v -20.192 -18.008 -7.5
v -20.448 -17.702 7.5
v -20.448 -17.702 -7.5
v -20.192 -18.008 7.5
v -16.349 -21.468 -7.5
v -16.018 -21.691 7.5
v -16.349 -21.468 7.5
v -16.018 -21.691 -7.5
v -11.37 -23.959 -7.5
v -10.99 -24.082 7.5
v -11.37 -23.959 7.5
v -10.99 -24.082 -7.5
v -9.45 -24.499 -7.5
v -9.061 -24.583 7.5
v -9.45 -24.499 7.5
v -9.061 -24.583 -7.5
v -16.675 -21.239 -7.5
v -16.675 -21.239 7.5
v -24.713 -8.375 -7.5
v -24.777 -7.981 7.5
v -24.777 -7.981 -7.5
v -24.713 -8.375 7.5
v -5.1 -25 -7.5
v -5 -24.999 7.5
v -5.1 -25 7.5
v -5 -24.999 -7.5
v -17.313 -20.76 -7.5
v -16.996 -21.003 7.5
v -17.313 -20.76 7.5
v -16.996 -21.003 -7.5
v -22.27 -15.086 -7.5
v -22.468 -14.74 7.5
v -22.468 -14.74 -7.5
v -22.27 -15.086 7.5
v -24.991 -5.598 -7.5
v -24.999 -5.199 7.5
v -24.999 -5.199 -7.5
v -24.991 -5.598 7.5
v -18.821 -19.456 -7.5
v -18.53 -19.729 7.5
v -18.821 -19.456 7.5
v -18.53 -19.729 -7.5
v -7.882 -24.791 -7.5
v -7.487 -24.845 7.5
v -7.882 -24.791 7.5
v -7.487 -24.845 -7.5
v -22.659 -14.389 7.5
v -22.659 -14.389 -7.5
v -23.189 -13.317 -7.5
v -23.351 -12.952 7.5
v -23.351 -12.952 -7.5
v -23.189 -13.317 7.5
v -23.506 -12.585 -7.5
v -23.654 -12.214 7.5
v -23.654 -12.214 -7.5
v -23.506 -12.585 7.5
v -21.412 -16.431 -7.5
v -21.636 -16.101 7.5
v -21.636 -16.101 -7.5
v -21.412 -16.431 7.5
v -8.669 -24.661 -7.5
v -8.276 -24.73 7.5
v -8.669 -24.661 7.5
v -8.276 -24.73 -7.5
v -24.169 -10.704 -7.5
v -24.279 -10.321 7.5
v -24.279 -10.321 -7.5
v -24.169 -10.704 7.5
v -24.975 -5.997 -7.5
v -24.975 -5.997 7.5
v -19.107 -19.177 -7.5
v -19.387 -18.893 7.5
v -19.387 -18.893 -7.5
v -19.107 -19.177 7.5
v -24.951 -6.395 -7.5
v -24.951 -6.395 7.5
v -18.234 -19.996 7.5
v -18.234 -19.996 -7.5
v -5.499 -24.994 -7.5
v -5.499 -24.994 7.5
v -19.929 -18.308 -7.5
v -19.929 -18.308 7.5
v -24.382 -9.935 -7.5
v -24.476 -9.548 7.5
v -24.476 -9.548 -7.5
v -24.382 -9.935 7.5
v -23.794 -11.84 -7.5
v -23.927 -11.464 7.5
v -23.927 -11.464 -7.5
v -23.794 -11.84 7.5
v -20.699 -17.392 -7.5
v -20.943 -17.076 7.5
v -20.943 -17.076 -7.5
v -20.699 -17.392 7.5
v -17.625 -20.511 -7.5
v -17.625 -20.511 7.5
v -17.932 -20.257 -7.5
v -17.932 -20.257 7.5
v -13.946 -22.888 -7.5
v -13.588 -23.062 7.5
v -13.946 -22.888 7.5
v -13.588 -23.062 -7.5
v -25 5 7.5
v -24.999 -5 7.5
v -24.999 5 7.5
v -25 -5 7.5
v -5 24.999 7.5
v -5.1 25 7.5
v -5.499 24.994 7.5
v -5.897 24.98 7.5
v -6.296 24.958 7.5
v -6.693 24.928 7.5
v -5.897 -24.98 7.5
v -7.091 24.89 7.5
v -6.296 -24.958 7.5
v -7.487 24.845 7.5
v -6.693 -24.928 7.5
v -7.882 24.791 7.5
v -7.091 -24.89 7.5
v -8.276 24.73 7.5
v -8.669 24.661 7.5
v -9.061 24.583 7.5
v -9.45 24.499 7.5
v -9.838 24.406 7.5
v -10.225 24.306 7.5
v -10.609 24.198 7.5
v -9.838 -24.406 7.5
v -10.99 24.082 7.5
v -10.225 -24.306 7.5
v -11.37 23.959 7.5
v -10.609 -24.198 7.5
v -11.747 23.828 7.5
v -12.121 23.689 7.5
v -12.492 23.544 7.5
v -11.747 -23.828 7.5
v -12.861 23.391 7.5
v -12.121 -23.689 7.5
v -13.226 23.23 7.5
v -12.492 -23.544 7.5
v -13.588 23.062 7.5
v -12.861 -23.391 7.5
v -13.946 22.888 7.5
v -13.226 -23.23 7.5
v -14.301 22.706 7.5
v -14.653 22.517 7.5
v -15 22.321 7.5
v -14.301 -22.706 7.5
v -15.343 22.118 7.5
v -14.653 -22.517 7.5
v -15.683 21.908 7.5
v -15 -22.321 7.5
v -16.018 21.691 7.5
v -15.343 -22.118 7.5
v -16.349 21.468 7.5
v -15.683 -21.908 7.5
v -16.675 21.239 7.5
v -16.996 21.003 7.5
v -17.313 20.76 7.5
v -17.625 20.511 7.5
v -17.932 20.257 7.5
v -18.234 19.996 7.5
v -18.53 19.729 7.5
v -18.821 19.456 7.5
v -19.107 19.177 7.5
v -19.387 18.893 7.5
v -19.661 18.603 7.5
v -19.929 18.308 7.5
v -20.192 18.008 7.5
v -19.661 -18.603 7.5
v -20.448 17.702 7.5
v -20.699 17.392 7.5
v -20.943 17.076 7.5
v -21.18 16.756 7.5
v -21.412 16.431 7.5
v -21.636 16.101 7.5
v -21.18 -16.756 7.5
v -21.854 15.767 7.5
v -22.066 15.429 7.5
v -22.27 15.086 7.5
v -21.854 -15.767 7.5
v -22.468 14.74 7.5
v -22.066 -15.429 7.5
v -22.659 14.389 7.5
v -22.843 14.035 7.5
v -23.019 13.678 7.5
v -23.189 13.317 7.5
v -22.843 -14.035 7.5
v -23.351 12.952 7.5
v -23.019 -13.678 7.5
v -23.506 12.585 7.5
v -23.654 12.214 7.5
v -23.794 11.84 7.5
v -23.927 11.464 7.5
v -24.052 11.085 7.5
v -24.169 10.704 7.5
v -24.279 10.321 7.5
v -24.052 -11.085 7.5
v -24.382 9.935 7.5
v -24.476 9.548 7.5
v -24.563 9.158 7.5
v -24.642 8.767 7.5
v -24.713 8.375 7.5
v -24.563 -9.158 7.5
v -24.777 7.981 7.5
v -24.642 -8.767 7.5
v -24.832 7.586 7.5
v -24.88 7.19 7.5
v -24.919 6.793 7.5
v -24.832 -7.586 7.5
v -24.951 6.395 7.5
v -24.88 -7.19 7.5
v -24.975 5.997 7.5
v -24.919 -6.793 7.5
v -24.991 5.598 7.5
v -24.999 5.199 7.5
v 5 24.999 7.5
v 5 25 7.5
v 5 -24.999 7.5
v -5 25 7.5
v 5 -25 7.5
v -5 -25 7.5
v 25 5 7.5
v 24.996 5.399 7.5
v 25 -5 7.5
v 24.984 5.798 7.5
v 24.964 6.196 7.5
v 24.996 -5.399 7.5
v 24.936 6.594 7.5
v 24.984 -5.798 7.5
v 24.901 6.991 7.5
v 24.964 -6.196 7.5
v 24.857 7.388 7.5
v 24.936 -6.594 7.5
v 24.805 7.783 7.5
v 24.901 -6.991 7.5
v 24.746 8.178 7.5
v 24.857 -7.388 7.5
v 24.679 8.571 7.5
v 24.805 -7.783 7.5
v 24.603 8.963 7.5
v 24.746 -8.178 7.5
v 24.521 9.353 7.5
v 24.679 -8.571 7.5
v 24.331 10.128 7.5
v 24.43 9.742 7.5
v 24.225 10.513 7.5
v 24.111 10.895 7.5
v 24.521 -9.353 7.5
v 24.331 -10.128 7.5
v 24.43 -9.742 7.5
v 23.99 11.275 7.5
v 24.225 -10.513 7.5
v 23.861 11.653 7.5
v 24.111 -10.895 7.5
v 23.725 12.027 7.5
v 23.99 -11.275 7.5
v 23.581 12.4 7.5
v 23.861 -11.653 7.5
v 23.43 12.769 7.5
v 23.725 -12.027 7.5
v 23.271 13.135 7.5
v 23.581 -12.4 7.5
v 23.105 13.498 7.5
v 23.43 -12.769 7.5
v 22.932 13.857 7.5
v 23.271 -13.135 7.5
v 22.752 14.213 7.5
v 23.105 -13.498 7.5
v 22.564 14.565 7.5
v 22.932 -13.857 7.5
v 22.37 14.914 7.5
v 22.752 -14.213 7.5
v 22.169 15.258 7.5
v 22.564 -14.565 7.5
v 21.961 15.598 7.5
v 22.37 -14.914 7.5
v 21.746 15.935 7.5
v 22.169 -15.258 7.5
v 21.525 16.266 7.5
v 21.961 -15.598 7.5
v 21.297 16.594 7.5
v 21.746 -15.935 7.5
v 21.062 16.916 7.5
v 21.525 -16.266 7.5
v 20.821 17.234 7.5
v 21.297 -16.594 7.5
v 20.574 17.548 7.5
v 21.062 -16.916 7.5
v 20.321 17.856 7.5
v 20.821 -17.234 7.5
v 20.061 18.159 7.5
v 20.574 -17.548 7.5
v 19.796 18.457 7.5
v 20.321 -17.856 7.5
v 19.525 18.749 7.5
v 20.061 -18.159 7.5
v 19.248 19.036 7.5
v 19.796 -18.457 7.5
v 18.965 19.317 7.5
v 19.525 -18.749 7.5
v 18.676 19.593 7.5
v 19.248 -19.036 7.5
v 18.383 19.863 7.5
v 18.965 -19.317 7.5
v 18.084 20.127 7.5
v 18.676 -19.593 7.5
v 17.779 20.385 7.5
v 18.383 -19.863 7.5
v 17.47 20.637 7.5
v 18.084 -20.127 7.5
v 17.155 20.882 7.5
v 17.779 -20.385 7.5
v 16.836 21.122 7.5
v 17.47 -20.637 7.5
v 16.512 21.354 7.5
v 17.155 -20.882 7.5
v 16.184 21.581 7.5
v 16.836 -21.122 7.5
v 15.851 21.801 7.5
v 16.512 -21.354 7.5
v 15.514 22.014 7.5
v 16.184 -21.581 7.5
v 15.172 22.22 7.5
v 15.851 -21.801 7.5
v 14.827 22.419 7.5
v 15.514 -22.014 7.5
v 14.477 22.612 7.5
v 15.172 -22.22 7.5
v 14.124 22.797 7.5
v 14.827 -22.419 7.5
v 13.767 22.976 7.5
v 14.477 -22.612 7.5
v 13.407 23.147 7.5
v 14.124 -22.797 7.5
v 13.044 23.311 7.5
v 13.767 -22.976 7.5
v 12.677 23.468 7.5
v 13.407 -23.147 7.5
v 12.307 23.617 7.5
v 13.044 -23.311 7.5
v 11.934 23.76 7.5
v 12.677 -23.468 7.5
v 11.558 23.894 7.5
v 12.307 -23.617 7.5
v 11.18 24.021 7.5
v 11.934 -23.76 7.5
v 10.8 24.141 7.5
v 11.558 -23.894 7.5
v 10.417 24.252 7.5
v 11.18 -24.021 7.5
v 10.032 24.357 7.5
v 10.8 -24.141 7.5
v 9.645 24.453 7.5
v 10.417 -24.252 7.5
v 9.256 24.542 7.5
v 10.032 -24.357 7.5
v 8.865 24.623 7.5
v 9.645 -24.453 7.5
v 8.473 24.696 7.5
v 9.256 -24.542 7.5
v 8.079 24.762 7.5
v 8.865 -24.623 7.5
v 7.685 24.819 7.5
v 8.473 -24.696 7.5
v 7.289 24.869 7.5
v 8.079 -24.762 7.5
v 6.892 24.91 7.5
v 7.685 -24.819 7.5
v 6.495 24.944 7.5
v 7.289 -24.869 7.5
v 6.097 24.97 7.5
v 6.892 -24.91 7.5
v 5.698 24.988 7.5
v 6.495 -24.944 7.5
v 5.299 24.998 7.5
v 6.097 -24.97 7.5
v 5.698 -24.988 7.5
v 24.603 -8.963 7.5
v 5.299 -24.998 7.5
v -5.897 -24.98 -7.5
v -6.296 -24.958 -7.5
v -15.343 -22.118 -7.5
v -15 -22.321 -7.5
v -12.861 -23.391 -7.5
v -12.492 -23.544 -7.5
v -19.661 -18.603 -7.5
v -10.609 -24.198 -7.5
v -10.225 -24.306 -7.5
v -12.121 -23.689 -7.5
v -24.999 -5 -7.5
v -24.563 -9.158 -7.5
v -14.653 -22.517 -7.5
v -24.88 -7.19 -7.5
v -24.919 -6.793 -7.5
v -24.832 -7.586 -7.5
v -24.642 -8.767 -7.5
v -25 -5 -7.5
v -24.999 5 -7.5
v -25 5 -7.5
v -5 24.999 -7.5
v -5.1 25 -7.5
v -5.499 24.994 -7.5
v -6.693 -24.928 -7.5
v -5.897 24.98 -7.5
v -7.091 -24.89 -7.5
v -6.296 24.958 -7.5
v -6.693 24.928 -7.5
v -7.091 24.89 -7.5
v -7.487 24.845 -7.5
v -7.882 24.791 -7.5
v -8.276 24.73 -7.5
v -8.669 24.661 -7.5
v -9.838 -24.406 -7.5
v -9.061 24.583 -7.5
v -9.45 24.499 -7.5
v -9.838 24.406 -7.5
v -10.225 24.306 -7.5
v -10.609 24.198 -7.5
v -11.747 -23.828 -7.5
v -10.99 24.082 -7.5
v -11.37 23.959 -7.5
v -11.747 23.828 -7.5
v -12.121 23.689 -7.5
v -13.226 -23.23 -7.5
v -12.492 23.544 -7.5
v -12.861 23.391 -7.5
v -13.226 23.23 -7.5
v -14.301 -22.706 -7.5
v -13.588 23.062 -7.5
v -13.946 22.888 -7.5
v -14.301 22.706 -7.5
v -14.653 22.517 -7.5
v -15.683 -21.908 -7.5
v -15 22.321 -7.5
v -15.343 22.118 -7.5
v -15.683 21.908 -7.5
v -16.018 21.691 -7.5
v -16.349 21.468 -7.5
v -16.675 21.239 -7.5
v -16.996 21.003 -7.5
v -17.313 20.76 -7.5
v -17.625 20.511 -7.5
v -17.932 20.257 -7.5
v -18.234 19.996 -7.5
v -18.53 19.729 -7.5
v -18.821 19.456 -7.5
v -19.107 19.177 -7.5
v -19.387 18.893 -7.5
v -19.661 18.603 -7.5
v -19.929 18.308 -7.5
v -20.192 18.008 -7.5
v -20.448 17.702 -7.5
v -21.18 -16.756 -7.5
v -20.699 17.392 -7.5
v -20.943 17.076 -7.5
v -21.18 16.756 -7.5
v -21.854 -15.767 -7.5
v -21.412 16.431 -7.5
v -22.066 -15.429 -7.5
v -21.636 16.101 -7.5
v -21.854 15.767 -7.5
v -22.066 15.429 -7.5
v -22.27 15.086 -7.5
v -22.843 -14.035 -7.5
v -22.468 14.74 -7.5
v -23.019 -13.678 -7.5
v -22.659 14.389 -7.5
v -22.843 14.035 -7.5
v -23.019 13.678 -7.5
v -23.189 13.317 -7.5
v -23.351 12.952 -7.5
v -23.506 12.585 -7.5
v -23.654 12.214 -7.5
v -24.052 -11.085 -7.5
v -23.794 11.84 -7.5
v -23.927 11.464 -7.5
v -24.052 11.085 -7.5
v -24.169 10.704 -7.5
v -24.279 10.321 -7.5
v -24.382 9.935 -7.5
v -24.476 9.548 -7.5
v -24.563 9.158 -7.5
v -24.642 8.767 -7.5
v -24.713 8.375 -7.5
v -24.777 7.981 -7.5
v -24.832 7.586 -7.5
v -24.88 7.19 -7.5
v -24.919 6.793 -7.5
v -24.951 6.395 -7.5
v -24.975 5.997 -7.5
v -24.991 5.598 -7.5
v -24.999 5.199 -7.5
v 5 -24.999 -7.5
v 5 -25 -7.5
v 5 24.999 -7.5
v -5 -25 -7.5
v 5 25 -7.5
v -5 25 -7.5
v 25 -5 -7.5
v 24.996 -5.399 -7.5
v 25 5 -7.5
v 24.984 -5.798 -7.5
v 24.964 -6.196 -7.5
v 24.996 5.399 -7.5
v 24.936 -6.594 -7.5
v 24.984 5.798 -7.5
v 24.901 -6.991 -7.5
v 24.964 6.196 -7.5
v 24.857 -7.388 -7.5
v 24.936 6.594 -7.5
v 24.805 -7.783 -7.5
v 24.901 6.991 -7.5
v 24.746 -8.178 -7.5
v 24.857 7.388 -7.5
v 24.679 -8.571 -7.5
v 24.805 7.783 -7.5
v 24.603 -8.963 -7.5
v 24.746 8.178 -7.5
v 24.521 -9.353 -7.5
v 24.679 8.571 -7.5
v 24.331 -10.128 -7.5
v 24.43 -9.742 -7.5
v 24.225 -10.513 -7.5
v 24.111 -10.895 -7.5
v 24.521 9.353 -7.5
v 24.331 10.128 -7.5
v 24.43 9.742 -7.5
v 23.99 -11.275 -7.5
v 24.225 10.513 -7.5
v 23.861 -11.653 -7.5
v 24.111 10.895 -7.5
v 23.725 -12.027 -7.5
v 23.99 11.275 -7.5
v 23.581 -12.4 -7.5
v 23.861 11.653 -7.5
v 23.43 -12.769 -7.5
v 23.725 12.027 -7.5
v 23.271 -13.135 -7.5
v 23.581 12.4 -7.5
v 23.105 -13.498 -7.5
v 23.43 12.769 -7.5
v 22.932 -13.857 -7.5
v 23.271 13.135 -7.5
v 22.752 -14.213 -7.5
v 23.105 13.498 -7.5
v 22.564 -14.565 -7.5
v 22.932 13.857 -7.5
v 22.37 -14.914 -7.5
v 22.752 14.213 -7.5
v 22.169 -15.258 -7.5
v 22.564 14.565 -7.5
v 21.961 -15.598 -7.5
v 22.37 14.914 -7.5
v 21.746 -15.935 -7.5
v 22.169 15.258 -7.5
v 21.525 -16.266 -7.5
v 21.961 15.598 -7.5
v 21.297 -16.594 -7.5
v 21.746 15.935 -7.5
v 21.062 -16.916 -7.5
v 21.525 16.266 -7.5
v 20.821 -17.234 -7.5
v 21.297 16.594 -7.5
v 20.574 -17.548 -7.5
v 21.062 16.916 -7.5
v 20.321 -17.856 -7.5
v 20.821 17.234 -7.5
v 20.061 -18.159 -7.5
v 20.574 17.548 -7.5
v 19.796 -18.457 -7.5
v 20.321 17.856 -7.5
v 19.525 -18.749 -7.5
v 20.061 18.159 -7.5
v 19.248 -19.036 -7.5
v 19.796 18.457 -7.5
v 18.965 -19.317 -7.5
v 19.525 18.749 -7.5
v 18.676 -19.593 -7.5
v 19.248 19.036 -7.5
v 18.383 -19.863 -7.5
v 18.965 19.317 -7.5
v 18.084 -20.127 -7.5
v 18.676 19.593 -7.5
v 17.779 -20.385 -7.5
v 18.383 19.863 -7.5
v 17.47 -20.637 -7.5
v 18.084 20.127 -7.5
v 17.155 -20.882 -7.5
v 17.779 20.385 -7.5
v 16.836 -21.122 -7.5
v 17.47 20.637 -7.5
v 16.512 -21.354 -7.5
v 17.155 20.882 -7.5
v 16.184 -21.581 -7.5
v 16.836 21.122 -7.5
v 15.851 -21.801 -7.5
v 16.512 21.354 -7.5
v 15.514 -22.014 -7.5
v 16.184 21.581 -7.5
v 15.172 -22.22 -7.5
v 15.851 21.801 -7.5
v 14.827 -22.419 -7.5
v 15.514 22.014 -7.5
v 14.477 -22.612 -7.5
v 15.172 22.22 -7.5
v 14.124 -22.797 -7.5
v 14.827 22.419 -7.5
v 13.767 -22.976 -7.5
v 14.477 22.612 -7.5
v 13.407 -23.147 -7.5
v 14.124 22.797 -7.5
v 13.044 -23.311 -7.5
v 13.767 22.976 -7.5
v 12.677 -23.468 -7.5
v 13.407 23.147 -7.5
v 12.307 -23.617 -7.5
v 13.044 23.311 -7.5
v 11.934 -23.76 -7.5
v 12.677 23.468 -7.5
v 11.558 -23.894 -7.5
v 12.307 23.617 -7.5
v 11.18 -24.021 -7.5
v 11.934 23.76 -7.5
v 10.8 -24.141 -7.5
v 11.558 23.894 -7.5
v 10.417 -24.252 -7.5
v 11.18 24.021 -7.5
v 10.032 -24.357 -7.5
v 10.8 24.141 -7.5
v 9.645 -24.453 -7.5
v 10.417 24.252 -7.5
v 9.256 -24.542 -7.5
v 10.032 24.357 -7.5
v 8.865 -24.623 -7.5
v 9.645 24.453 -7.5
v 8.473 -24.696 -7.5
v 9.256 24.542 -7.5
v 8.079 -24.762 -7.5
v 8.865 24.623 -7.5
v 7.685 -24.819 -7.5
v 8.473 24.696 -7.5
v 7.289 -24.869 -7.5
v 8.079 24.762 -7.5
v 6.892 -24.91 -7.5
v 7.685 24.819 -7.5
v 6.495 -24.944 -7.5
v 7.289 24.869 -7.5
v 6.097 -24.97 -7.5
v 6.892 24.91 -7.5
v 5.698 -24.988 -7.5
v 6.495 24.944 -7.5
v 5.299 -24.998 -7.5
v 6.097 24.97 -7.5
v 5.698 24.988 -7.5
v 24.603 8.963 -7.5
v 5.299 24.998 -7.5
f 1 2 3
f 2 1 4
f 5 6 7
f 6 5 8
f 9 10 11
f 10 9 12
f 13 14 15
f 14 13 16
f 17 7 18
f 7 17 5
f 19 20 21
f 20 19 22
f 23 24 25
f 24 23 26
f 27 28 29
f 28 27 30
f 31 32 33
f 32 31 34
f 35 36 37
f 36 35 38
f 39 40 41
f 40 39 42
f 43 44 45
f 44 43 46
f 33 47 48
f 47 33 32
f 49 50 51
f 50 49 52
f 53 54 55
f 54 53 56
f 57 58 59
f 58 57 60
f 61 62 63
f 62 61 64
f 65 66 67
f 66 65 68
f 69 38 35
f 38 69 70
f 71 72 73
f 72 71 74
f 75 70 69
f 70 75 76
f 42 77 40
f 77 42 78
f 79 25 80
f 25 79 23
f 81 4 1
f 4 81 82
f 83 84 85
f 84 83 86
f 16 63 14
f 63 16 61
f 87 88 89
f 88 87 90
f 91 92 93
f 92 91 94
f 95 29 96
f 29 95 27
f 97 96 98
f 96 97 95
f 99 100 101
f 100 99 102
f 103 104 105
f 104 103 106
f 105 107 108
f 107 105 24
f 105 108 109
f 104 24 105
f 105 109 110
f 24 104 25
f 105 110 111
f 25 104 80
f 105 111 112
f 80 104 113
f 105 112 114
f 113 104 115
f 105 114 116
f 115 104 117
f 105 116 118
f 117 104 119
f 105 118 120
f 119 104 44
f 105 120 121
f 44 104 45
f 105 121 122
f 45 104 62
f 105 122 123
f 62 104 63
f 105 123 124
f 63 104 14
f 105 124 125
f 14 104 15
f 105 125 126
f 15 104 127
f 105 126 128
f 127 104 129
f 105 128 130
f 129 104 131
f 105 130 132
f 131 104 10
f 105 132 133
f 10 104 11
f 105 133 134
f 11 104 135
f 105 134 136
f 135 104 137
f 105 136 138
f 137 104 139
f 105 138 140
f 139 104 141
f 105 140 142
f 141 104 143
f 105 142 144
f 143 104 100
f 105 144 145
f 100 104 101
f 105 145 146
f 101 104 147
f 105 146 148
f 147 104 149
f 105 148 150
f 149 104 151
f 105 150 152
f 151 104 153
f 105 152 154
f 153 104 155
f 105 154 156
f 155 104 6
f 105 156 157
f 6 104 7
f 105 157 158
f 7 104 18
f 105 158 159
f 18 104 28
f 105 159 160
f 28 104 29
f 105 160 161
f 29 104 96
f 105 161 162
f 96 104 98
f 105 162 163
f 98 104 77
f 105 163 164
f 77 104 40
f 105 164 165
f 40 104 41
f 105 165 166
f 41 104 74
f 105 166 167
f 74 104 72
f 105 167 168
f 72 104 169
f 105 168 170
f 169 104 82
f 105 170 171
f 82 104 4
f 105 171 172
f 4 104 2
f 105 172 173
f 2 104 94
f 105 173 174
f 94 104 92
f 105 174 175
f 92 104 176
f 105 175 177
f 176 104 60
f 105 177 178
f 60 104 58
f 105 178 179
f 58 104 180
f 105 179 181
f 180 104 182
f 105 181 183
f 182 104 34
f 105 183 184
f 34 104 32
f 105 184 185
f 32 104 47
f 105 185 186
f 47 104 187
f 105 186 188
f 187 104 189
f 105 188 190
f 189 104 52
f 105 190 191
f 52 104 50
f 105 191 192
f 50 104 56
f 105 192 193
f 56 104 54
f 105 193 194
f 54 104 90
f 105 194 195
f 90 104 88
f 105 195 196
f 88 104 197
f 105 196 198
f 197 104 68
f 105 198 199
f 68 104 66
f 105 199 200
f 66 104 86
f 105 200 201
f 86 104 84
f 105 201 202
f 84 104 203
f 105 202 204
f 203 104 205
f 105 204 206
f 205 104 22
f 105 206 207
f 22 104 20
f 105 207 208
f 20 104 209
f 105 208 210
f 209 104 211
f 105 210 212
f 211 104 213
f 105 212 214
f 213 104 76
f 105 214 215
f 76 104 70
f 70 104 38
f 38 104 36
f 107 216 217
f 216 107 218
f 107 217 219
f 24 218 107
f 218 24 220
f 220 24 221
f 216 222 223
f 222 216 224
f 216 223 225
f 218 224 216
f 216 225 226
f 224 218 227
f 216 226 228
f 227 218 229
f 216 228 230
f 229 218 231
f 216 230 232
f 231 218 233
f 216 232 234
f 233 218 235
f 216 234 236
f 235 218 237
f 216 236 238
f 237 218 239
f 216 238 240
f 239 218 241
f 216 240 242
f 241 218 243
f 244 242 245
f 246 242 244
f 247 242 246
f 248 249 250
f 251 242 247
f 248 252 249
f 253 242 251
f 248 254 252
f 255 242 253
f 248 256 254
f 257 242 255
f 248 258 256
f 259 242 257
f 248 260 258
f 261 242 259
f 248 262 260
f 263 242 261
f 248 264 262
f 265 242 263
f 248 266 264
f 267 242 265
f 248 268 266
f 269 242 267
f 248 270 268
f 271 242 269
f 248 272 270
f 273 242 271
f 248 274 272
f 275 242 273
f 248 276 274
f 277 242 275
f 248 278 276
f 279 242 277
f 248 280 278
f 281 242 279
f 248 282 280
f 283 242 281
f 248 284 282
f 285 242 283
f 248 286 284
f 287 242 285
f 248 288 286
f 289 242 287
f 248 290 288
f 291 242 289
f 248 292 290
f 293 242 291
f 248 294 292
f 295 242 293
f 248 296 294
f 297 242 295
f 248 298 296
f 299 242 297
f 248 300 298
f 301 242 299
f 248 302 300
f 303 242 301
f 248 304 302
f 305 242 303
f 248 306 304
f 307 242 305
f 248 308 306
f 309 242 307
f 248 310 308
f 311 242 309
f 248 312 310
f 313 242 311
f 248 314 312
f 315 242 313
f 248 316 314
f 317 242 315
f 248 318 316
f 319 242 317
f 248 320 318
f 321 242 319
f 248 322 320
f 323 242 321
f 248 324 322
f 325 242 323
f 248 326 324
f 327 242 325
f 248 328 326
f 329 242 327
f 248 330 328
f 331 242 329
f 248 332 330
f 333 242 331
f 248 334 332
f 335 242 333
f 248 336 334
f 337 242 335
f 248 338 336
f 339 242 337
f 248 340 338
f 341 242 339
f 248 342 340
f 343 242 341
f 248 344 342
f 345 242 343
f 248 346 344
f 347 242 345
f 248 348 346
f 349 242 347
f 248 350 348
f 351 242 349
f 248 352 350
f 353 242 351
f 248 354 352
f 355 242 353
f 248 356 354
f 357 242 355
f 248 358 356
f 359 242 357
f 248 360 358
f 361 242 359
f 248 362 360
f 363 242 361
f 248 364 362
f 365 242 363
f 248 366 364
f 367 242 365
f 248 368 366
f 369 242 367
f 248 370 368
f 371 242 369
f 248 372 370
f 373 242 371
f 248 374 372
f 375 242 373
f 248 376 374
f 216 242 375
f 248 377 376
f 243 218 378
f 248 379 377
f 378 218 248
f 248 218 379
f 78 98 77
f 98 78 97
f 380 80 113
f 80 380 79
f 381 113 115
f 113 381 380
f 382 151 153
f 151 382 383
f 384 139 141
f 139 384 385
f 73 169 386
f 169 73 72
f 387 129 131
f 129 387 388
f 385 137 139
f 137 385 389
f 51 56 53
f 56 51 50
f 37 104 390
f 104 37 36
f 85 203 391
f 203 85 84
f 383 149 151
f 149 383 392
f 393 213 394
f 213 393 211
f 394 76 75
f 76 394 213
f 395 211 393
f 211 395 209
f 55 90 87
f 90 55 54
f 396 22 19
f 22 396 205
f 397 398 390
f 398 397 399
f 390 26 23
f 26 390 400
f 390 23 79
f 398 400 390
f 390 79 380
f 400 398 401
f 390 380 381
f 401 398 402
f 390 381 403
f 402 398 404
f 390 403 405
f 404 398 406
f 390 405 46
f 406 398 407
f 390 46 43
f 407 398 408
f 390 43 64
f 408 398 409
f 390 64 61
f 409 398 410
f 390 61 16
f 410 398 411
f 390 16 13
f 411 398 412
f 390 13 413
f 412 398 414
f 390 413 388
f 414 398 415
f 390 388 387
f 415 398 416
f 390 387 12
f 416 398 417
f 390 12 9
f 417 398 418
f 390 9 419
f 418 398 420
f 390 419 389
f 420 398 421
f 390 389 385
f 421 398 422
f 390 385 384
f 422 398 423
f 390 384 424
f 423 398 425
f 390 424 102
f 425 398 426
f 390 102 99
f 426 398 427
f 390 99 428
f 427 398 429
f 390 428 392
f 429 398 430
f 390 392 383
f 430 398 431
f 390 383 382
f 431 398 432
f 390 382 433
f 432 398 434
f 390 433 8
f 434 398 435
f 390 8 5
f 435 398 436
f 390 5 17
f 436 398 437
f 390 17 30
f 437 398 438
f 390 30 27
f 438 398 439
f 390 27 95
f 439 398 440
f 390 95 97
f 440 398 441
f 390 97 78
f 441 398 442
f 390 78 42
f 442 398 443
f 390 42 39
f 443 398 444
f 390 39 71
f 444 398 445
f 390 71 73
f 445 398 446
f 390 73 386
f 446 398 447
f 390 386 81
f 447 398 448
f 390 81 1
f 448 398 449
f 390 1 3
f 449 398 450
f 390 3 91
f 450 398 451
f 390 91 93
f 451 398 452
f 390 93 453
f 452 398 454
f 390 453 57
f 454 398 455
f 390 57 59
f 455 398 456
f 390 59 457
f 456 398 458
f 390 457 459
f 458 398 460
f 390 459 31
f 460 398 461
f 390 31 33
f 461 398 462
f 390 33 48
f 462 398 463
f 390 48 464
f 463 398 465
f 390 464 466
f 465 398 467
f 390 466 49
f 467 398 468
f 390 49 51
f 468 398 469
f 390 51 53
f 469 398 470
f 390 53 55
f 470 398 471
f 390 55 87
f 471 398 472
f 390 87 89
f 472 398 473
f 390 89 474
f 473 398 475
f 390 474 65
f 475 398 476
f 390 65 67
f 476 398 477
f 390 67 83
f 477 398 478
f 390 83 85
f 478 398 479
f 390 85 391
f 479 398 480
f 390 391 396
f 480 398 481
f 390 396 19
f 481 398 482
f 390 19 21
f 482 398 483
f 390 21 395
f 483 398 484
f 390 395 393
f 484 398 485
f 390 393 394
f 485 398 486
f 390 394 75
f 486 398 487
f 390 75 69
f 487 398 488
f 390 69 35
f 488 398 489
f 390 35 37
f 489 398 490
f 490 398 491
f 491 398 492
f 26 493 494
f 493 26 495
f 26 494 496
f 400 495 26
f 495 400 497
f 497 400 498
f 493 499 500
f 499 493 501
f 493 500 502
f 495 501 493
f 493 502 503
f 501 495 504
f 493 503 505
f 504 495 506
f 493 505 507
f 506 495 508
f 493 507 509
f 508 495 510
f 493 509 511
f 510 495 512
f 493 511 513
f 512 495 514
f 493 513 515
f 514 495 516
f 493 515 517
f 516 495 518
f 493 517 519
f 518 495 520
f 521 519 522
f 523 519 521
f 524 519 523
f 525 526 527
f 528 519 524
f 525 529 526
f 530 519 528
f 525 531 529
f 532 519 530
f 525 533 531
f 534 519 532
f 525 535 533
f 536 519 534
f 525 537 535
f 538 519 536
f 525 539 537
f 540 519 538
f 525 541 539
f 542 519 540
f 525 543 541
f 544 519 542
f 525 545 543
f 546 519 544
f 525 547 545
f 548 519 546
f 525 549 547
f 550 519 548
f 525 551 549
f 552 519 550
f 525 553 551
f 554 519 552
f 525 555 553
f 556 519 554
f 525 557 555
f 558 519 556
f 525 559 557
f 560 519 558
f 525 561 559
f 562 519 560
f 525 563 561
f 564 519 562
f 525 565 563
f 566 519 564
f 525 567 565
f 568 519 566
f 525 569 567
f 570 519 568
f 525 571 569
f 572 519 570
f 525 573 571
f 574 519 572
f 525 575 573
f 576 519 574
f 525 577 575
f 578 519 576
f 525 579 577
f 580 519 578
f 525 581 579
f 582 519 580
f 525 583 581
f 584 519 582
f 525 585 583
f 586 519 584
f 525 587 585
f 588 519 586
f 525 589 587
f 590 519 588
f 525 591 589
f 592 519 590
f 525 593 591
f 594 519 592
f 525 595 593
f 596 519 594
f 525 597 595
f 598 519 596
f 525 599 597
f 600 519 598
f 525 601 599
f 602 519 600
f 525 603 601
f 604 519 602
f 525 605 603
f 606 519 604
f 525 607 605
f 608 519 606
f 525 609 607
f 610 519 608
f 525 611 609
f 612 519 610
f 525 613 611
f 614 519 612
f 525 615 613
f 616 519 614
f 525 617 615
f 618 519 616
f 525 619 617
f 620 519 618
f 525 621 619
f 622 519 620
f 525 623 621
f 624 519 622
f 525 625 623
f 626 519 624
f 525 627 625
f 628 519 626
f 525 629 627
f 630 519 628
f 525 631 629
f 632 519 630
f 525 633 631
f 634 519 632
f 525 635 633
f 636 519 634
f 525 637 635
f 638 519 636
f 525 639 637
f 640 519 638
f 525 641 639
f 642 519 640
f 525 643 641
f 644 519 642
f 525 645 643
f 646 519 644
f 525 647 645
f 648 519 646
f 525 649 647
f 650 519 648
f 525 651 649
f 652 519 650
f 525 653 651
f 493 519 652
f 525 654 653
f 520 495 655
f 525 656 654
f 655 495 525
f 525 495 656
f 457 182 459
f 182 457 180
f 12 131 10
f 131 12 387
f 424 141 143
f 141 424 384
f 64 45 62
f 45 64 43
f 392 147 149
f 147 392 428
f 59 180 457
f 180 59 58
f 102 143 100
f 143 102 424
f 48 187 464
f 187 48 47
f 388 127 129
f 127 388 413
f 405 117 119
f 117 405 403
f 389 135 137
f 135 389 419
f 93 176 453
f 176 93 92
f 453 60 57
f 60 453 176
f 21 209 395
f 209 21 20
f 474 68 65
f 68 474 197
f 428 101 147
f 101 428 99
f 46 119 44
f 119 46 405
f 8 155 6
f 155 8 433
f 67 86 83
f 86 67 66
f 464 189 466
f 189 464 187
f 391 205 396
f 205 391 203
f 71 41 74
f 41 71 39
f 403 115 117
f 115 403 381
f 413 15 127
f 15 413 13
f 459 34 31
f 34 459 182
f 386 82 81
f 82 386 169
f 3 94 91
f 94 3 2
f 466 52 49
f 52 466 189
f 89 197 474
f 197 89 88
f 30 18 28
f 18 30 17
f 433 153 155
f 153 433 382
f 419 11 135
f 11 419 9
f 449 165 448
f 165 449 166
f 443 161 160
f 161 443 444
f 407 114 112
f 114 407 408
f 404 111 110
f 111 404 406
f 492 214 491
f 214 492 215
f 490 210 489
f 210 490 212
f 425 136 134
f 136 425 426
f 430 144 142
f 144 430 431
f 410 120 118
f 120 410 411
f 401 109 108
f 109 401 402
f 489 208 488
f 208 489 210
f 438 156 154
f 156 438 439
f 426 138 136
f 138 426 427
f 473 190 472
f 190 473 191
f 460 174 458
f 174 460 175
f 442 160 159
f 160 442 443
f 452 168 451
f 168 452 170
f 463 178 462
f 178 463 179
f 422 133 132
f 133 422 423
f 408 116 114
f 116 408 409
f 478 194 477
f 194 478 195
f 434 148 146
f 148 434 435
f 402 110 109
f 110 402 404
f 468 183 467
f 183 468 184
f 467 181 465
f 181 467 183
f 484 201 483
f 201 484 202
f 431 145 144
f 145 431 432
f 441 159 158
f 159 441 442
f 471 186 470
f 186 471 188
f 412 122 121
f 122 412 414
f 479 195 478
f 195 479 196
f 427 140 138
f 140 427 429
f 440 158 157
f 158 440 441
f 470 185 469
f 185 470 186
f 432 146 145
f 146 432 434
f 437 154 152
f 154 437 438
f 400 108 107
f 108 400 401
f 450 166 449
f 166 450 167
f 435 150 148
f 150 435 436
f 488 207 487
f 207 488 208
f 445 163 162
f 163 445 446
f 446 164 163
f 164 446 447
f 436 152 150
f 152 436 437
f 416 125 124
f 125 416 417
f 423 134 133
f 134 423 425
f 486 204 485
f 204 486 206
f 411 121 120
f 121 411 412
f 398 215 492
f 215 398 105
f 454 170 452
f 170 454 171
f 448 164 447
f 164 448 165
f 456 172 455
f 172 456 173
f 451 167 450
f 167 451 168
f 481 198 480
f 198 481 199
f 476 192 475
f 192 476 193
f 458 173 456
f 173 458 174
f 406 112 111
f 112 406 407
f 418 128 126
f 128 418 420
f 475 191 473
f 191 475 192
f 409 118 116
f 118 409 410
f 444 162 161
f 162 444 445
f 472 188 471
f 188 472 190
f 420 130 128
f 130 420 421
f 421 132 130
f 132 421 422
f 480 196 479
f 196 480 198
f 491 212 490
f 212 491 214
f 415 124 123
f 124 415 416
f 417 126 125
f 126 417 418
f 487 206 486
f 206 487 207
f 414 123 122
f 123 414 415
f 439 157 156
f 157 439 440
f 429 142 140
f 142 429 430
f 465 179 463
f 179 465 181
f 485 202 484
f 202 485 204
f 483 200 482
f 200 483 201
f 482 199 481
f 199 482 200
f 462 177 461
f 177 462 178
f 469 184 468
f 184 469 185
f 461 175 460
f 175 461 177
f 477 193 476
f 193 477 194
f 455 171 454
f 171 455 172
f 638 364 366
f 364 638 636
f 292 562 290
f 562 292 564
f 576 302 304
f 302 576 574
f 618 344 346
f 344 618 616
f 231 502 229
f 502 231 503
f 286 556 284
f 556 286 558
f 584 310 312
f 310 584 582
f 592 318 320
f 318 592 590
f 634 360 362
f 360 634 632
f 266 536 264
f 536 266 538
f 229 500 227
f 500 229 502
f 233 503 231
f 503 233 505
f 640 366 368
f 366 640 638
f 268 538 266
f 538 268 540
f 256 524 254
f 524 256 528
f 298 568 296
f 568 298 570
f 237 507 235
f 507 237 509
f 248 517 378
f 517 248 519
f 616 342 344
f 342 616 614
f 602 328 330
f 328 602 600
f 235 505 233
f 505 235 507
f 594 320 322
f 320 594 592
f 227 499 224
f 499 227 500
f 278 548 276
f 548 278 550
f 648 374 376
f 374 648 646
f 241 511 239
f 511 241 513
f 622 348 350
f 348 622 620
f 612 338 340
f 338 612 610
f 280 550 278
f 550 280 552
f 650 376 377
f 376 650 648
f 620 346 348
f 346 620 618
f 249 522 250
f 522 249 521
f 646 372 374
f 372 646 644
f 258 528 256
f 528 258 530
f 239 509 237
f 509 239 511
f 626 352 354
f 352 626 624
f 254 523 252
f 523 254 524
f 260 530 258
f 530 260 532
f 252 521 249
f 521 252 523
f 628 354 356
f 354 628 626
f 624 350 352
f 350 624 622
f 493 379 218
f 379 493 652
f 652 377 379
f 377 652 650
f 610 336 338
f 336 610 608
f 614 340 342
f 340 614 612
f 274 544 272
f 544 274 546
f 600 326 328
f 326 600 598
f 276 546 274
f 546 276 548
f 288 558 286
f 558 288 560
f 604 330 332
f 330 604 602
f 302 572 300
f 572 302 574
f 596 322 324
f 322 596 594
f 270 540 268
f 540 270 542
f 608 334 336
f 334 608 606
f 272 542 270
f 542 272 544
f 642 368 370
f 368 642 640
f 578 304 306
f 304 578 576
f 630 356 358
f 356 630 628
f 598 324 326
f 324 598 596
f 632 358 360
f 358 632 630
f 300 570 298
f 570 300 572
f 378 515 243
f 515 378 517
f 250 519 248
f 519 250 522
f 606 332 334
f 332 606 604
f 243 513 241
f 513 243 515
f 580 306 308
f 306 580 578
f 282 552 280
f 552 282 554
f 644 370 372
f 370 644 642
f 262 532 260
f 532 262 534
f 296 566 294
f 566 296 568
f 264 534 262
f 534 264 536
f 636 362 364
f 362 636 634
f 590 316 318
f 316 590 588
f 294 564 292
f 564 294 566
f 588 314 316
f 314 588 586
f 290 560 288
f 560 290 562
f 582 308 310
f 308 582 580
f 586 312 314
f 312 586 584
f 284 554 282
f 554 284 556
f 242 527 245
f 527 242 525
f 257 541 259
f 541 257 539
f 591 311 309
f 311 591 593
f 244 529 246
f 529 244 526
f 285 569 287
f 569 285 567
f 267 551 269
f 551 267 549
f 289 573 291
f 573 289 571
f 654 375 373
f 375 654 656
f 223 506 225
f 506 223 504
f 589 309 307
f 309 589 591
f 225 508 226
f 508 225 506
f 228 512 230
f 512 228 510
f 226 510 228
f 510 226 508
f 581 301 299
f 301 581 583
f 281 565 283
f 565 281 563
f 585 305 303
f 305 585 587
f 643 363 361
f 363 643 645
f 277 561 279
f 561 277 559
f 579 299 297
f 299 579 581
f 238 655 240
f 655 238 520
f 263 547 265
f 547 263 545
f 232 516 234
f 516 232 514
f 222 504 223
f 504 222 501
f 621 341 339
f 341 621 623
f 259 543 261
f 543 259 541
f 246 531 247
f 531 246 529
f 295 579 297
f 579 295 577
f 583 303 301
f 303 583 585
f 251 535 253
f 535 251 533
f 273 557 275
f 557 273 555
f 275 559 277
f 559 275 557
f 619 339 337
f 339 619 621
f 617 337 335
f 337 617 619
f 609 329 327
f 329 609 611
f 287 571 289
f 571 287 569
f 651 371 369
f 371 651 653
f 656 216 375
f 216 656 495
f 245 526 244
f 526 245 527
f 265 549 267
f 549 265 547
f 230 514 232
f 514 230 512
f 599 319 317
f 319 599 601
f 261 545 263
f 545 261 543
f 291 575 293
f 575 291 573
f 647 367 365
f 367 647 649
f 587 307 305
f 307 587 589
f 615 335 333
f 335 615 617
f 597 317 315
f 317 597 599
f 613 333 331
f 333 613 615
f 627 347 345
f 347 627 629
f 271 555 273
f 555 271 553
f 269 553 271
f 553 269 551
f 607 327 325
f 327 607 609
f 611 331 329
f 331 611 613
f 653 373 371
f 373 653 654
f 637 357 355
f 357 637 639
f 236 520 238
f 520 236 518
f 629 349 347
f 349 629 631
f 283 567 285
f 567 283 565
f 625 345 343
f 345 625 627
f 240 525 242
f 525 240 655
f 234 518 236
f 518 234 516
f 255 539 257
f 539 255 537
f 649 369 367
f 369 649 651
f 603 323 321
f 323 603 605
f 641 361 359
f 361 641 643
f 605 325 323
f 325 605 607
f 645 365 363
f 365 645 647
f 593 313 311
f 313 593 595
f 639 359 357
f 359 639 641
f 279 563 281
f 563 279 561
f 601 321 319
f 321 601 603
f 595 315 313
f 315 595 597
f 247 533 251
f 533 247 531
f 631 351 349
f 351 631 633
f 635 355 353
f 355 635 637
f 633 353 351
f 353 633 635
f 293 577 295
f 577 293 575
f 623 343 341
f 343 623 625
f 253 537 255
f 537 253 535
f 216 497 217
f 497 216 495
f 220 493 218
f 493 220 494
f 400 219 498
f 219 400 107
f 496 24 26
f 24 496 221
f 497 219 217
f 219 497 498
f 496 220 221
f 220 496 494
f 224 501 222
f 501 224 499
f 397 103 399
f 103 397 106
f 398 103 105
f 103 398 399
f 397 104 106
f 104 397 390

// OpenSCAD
use <MCAD/boxes.scad>

$fa = 1;
$fs = 0.4;
roundedBox(size=[50,50,15],radius=20, sidesonly=true);
